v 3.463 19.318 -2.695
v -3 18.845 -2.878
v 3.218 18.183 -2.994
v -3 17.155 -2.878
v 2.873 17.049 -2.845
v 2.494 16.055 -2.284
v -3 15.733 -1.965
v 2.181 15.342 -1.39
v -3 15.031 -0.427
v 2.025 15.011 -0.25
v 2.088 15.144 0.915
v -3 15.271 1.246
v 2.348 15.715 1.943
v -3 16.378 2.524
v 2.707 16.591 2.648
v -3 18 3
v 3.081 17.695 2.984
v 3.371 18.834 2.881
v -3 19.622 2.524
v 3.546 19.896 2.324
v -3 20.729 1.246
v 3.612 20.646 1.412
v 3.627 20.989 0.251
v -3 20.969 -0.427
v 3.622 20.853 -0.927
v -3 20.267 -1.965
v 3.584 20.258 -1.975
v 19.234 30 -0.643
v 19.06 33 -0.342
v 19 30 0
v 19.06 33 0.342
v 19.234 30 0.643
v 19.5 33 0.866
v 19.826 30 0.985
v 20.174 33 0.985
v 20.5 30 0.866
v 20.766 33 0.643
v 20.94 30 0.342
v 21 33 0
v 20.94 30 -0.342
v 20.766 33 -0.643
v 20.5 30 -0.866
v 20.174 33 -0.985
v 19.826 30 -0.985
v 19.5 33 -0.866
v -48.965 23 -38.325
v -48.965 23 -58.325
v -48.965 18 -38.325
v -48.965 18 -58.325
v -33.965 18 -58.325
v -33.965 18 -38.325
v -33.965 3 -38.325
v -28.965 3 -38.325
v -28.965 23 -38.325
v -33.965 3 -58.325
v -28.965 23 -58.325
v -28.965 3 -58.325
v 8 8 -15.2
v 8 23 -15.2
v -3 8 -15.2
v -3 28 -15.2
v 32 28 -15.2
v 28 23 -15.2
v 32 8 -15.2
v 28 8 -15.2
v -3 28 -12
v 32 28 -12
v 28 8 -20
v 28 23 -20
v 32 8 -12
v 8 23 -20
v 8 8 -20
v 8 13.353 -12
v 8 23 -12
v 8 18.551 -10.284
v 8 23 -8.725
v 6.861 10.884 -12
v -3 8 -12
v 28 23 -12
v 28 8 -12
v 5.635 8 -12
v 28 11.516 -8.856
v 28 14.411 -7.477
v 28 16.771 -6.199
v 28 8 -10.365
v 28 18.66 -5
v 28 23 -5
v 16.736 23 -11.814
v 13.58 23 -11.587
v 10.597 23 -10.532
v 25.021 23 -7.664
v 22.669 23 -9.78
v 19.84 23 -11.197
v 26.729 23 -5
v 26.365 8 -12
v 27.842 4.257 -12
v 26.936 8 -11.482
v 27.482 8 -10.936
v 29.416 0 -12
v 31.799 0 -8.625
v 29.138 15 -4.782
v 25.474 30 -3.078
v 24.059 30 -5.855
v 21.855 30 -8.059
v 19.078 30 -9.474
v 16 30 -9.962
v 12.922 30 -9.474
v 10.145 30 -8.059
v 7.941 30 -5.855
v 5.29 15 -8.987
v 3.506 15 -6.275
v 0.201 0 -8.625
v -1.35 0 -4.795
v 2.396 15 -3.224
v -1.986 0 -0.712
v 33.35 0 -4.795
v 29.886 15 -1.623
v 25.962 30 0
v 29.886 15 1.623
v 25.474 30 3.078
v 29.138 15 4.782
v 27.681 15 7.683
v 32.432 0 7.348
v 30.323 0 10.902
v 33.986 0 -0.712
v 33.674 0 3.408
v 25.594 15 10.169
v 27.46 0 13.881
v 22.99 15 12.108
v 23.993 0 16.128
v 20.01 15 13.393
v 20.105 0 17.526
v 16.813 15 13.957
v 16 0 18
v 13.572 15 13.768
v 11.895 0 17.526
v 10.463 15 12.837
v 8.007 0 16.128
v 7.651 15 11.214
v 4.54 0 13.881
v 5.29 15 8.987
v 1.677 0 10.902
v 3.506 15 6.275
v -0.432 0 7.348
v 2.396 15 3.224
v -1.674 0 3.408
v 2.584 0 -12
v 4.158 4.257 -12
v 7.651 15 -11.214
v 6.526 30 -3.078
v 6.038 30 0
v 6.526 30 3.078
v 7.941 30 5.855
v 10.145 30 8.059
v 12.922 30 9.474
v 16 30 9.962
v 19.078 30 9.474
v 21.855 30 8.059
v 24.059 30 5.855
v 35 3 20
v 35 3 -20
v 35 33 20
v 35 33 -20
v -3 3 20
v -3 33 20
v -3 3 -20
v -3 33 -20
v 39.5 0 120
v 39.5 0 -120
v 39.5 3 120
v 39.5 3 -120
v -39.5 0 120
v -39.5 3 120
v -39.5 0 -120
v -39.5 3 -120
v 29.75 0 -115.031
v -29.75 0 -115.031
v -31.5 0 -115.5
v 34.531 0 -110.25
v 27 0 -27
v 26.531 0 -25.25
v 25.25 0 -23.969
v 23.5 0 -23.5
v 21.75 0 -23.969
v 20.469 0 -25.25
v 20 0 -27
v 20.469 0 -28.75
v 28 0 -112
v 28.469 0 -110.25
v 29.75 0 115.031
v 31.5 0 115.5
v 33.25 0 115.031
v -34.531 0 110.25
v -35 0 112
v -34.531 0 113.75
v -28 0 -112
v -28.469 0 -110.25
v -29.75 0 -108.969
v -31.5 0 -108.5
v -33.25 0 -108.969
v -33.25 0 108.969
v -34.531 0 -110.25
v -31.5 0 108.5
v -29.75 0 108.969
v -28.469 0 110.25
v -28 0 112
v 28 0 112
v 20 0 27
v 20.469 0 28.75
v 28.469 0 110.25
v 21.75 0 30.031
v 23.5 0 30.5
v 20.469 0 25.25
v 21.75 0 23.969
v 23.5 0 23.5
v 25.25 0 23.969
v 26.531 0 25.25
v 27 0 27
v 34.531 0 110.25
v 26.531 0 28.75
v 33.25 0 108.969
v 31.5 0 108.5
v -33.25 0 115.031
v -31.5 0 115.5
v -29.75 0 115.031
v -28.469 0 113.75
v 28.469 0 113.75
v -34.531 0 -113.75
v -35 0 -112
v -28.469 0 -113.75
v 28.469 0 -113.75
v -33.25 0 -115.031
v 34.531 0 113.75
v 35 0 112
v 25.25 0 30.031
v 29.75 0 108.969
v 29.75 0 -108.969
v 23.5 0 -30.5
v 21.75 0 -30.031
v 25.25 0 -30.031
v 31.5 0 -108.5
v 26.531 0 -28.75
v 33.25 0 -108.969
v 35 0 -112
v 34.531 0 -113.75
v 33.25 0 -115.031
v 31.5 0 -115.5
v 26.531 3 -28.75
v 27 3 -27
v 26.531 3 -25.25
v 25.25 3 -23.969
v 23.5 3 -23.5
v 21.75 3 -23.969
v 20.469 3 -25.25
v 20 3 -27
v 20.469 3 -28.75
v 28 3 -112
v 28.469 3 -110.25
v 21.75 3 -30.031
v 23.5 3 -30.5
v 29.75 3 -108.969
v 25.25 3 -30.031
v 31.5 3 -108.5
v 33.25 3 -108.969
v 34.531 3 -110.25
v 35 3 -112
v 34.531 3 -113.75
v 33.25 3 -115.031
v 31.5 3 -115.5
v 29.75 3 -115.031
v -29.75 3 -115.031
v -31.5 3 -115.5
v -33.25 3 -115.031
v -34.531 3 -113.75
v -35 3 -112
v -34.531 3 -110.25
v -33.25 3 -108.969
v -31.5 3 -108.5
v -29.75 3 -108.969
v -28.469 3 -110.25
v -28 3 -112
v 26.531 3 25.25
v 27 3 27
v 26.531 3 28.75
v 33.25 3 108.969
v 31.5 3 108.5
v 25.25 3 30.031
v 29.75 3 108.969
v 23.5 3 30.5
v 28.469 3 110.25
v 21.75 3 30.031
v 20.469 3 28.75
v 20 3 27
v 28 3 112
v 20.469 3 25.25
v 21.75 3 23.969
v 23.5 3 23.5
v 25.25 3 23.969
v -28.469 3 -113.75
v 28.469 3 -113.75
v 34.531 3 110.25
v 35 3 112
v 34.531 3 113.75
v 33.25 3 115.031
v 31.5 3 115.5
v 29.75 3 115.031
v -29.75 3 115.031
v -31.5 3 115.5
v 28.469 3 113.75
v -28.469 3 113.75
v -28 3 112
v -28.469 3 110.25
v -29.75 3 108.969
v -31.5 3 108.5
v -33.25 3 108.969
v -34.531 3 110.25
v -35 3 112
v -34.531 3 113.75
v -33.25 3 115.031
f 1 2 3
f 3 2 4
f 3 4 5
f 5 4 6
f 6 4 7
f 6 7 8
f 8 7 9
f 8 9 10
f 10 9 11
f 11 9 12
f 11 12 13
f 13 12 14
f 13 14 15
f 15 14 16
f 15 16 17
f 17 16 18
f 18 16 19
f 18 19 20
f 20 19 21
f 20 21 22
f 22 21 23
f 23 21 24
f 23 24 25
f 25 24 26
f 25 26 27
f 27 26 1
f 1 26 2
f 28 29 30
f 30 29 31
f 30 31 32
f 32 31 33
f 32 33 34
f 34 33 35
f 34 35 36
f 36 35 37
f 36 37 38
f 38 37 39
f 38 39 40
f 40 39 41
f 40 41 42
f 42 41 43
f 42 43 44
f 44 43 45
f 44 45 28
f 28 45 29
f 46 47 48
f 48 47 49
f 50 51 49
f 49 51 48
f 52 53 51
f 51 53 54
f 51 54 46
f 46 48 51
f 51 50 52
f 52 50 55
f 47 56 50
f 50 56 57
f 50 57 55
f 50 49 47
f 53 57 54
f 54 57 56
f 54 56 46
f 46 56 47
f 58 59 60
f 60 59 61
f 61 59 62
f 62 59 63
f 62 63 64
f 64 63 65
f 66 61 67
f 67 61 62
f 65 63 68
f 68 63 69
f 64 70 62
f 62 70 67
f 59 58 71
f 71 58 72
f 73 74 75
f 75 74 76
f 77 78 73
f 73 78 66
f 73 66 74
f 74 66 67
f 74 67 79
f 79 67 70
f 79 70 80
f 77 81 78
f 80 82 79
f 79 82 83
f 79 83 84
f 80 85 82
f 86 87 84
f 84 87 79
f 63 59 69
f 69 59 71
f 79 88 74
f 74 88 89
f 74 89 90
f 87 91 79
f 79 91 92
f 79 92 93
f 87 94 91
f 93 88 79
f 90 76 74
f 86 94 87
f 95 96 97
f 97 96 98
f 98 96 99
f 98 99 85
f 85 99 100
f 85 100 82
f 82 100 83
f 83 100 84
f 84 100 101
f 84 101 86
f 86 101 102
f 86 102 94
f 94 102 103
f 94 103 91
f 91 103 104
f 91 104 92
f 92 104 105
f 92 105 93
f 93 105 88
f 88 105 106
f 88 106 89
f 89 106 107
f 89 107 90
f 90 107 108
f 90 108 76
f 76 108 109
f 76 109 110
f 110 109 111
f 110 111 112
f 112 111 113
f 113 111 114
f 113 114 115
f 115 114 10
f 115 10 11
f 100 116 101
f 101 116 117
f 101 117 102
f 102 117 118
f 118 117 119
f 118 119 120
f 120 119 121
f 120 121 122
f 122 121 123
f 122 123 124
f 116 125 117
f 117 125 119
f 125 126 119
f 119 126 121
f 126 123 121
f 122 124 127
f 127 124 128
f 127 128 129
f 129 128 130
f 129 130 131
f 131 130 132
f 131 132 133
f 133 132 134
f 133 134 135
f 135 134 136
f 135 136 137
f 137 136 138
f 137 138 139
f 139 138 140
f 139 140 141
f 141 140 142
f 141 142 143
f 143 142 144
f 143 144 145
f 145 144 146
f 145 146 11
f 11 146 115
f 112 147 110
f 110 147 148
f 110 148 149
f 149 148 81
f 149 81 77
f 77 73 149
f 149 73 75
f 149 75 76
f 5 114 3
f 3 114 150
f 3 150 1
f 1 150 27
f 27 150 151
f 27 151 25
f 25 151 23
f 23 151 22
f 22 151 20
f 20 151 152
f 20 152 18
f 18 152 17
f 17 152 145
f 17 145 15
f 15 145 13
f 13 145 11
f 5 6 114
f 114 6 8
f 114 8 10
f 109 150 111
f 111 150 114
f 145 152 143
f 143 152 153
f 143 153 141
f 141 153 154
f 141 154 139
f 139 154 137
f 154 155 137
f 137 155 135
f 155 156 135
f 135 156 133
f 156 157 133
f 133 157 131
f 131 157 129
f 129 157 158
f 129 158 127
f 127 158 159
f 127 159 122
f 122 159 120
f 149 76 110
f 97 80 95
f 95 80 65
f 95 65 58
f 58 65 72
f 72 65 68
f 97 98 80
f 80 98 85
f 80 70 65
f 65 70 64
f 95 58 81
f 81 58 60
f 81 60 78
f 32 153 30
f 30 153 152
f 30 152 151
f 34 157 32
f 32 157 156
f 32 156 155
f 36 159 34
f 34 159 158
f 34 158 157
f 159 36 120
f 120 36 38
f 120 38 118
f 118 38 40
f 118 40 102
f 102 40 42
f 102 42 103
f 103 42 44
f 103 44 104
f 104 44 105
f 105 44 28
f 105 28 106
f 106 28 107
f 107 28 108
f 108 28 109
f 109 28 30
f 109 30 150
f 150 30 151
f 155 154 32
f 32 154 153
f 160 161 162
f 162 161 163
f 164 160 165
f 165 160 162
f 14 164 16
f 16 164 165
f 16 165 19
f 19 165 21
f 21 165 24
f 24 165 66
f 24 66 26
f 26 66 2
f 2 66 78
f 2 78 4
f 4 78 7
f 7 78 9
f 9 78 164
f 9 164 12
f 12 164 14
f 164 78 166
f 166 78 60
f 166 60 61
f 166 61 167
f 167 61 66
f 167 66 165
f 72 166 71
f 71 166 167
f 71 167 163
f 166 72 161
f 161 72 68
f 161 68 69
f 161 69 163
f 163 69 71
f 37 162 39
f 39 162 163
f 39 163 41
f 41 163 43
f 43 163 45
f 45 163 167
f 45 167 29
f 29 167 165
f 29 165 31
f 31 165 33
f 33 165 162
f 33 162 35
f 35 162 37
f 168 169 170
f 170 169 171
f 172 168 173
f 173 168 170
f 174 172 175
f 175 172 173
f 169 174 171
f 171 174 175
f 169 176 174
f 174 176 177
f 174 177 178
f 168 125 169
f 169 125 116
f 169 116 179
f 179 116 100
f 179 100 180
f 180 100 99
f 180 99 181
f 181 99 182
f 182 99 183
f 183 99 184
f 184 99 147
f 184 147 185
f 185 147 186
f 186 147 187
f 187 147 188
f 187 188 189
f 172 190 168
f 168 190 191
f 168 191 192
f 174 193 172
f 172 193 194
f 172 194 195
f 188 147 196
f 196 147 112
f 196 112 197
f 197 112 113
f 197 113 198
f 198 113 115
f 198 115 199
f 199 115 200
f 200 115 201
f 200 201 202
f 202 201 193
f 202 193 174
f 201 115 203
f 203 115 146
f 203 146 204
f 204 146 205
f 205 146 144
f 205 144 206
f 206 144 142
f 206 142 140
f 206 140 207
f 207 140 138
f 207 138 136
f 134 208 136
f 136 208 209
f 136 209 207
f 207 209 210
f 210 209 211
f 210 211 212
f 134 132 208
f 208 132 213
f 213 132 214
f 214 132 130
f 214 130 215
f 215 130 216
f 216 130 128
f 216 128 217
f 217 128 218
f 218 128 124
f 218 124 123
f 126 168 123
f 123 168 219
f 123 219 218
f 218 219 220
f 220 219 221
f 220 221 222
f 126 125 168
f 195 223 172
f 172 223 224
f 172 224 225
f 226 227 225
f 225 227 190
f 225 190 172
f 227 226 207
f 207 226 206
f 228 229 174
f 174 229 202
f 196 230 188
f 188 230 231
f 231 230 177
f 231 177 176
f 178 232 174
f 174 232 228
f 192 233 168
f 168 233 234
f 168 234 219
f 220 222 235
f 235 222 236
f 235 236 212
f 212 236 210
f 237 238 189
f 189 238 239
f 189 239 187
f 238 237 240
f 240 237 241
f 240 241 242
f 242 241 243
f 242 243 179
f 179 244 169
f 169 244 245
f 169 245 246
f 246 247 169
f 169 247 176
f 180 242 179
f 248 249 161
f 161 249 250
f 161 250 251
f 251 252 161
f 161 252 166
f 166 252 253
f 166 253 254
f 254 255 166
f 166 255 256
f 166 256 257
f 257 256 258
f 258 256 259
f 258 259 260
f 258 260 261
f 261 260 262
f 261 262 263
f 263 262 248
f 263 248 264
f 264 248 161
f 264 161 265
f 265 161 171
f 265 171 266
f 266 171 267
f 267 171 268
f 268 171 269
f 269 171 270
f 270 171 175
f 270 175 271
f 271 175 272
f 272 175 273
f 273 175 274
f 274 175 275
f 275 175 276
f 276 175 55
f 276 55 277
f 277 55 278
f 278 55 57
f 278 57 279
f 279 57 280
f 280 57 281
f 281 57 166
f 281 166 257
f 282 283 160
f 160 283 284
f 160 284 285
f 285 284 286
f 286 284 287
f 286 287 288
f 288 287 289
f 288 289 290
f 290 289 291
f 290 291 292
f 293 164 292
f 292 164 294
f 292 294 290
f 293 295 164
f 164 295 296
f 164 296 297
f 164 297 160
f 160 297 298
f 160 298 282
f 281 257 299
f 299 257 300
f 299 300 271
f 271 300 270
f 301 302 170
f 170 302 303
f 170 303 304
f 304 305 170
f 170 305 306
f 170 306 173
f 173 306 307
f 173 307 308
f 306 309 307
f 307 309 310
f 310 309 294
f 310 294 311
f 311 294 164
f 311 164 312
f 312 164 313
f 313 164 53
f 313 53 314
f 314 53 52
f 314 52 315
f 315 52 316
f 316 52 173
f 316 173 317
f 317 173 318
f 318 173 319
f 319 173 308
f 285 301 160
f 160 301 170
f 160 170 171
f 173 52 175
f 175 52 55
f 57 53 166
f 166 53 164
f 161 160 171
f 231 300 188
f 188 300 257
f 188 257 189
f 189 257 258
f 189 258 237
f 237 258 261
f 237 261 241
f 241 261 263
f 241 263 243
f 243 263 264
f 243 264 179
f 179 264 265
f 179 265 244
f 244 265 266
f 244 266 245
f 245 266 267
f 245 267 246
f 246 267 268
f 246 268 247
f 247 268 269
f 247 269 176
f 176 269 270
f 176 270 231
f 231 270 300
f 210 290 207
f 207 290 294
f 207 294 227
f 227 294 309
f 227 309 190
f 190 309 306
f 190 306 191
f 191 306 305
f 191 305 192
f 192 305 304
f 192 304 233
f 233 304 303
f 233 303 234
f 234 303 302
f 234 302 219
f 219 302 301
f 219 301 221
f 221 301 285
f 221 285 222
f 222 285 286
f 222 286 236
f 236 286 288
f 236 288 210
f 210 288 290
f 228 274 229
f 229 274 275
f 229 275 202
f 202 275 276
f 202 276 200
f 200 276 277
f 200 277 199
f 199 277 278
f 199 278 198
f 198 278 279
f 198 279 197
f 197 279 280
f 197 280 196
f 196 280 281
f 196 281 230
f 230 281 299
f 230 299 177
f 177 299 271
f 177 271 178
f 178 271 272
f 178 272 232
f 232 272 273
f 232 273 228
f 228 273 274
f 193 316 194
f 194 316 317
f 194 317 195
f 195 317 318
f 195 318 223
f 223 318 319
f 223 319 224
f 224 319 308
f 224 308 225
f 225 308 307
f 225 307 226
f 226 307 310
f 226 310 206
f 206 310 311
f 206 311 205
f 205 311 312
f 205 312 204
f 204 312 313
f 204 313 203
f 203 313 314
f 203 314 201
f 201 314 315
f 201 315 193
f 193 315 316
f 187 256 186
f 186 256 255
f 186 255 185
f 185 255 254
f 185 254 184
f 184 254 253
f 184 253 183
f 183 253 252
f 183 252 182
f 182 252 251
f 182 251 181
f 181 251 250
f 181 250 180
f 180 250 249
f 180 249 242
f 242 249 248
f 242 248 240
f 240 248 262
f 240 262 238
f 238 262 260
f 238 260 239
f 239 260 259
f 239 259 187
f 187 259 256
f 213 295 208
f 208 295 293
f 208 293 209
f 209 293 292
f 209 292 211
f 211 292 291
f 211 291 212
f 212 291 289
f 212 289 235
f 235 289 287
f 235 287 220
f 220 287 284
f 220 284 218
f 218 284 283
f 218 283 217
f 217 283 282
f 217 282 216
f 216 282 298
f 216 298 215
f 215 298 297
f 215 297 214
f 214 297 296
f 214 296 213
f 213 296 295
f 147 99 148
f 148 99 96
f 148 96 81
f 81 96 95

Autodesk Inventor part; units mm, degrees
ref_plane "YZ Plane" through (0, 0, 0) normal (1, 0, 0) x (0, 1, 0)
ref_plane "XZ Plane" through (0, 0, 0) normal (0, 1, 0) x (-1, 0, 0)
ref_plane "XY Plane" through (0, 0, 0) normal (0, 0, 1) x (1, 0, 0)
sketch "Sketch44" plane through (0, 0, 0) normal (0, 1, 0) x (-1, 0, 0)
  line L0 (-39.5, 120) -> (39.5, 120)
  line L1 (39.5, 120) -> (39.5, -120)
  line L2 (39.5, -120) -> (-39.5, -120)
  line L3 (-39.5, -120) -> (-39.5, 120)
  line L4 (-39.5, 120) -> (39.5, -120) construction
  line L5 (39.5, 120) -> (-39.5, -120) construction
  point P0 (0, 0)
  dimension "d138" = 79
  dimension "d139" = 240
extrude "Extrusion33" add sketch "Sketch44" along normal blind 3
sketch "Sketch45" plane through (0, 3, 0) normal (0, 1, 0) x (1, 0, 0)
  line L0 (35, -20) -> (-3, -20)
  line L1 (-3, -20) -> (-3, 20)
  line L2 (-3, 20) -> (35, 20)
  line L3 (35, 20) -> (35, -20)
  point P0 (0, 0)
  dimension "d142" = 38
  dimension "d143" = 40
extrude "Extrusion34" add sketch "Sketch45" along normal blind 30
sketch "Sketch47" plane through (0, 0, 0) normal (0, -1, 0) x (1, 0, 0)
  circle A0 centre (16, 0) radius 18
  point P0 (0, 0)
  dimension "d146" = 36
extrude "Extrusion35" cut sketch "Sketch47" against normal blind 30 draft -15
sketch "Sketch58" plane through (35, 3, -20) normal (0, 0, -1) x (-1, 0, 0)
  line L0 (7, 20) -> (27, 20)
  line L1 (27, 20) -> (27, 5)
  line L2 (27, 5) -> (7, 5)
  line L3 (7, 5) -> (7, 20)
  point P0 (35, -3)
  dimension "d156" = 20
  dimension "d157" = 15
extrude "Extrusion38" cut sketch "Sketch58" against normal blind 15
sketch "Sketch59" plane through (-3, 3, -20) normal (-1, 0, 0) x (0, 0, 1)
  line L0 (4.8, 25) -> (8, 25)
  line L1 (8, 25) -> (8, 5)
  line L2 (8, 5) -> (4.8, 5)
  line L3 (4.8, 5) -> (4.8, 25)
  point P0 (20, -3)
  dimension "d160" = 3.2
  dimension "d161" = 20
extrude "Extrusion39" cut sketch "Sketch59" against normal blind 35
sketch "Sketch60" plane through (0, 3, 0) normal (0, 1, 0) x (1, 0, 0)
  line L0 (-33.965, 38.3247) -> (-28.965, 38.3247)
  line L1 (-28.965, 38.3247) -> (-28.965, 58.3247)
  line L2 (-28.965, 58.3247) -> (-33.965, 58.3247)
  line L3 (-33.965, 58.3247) -> (-33.965, 38.3247)
  point P0 (0, 0)
  dimension "d164" = 5
  dimension "d165" = 20
extrude "Extrusion40" add sketch "Sketch60" along normal blind 20
sketch "Sketch61" plane through (0, 23, 0) normal (0, 1, 0) x (1, 0, 0)
  line L0 (-28.965, 38.3247) -> (-28.965, 58.3247) projected
  line L1 (-28.965, 38.3247) -> (-48.965, 38.3247)
  line L2 (-48.965, 38.3247) -> (-48.965, 58.3247)
  line L3 (-48.965, 58.3247) -> (-28.965, 58.3247)
  line L4 (-28.965, 58.3247) -> (-28.965, 38.3247)
  point P0 (0, 0)
  dimension "d168" = 20
  dimension "d169" = 20
extrude "Extrusion41" add sketch "Sketch61" against normal blind 5
sketch "Sketch64" plane through (0, 33, 0) normal (0, 1, 0) x (1, 0, 0)
  circle A0 centre (20, 0) radius 1
  point P0 (0, 0)
  dimension "d173" = 2
extrude "Extrusion42" cut sketch "Sketch64" against normal through all
sketch "Sketch65" plane through (-3, 3, -20) normal (-1, 0, 0) x (0, 0, 1)
  circle A0 centre (20, 15) radius 3
  point P0 (20, -3)
  dimension "d176" = 6
extrude "Extrusion43" cut sketch "Sketch65" against normal blind 10
sketch "Sketch68" plane through (0, 3, 0) normal (0, 1, 0) x (1, 0, 0)
  circle A0 centre (-31.5, -112) radius 3.5
  circle A1 centre (31.5, -112) radius 3.5
  circle A2 centre (-31.5, 112) radius 3.5
  circle A3 centre (31.5, 112) radius 3.5
  point P0 (0, 0)
  dimension "d192" = 7
  dimension "d193" = 7
  dimension "d194" = 7
  dimension "d195" = 7
extrude "Extrusion46" cut sketch "Sketch68" against normal through all
sketch "Sketch69" plane through (0, 3, 0) normal (0, 1, 0) x (1, 0, 0)
  circle A0 centre (23.5, -27) radius 3.5
  circle A1 centre (23.5, 27) radius 3.5
  point P0 (0, 0)
  dimension "d198" = 7
  dimension "d199" = 7
extrude "Extrusion47" cut sketch "Sketch69" against normal through all
sketch "Sketch70" plane through (0, 0, 0) normal (0, -1, 0) x (1, 0, 0)
  line L0 (-3, -12) -> (32, -12) projected
  line L1 (2.479, -12) -> (29.6644, -12)
  line L2 (29.6644, -12) -> (29.6644, -18.105)
  line L3 (29.6644, -18.105) -> (2.479, -18.105)
  line L4 (2.479, -18.105) -> (2.479, -12)
  point P0 (0, 0)
extrude "Extrusion48" add sketch "Sketch70" against normal blind 8
equation "\"d193\" = d192"
equation "\"d194\" = d192"
equation "\"d195\" = d192"
equation "\"d198\" = d192"
equation "\"d199\" = d192"
properties part number "liquid port_v07"
